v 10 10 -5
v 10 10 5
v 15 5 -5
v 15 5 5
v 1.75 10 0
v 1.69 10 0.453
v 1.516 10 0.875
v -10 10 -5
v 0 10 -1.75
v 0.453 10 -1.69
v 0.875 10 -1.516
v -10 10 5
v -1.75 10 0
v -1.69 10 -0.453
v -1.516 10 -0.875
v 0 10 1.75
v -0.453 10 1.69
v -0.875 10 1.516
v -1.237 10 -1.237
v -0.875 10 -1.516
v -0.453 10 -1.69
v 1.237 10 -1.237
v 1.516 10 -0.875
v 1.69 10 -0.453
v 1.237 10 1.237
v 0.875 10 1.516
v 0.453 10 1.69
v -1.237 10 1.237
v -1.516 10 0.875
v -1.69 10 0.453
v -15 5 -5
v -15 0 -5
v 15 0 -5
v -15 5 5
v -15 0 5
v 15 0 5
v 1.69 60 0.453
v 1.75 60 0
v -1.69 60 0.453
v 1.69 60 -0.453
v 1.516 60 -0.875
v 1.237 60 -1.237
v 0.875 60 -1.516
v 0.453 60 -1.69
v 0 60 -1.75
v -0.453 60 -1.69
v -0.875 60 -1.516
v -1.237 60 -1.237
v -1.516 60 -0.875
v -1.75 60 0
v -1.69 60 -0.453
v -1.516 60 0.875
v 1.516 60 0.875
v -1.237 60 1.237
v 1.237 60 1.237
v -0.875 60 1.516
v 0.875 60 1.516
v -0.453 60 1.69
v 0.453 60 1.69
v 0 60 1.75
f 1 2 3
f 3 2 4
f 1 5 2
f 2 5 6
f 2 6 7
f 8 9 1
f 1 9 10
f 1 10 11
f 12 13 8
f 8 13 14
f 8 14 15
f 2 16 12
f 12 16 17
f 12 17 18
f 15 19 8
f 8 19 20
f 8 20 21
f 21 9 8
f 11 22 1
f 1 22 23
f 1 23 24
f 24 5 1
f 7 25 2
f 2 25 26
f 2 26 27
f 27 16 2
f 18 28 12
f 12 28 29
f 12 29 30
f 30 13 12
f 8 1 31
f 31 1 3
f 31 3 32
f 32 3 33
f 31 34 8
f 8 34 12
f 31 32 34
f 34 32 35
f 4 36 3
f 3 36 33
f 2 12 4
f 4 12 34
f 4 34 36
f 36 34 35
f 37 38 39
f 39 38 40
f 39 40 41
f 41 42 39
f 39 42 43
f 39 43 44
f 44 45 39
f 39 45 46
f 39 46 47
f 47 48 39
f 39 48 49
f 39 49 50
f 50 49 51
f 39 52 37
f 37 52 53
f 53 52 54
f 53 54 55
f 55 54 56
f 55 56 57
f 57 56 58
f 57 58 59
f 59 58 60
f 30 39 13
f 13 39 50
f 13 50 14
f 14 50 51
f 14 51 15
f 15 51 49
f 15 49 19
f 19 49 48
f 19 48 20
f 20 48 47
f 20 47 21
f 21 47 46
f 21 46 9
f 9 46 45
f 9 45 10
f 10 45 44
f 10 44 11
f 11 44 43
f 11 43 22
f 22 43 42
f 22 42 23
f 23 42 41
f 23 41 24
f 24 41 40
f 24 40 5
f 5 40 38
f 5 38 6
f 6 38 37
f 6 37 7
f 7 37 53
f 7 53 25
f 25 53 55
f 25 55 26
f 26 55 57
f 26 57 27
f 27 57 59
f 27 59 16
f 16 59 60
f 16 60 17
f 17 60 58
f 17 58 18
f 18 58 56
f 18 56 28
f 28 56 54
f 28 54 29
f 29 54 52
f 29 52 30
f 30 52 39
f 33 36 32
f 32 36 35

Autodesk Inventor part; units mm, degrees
ref_plane "YZ Plane" through (0, 0, 0) normal (1, 0, 0) x (0, 1, 0)
ref_plane "XZ Plane" through (0, 0, 0) normal (0, 1, 0) x (-1, 0, 0)
ref_plane "XY Plane" through (0, 0, 0) normal (0, 0, 1) x (1, 0, 0)
sketch "草圖1" plane through (0, 0, 0) normal (0, 0, 1) x (1, 0, 0)
  line L0 (0, 0) -> (1.75, 0)
  line L1 (1.75, 0) -> (1.75, 60)
  line L2 (1.75, 60) -> (0, 60)
  line L3 (0, 60) -> (0, 0)
  dimension "d0" = 1.75
  dimension "d1" = 60
revolve "迴轉1" add sketch "草圖1" angle 360 about axis through (0, 60, 0) along (0, -1, 0)
sketch "草圖2" plane through (0, 0, 0) normal (0, 0, 1) x (1, 0, 0)
  line L0 (15, 0) -> (-15, 0)
  line L1 (-15, 0) -> (-15, 10)
  line L2 (-15, 10) -> (15, 10)
  line L3 (15, 10) -> (15, 0)
  point P0 (0, 0)
  dimension "d3" = 10
  dimension "d4" = 30
  dimension "d5" = 15
extrude "擠出1" add sketch "草圖2" along normal mid plane 10
chamfer "倒角1" distance 5 angle 45 2 edges at (-15, 10, 0) (15, 10, 0)
properties part number "車軸"
